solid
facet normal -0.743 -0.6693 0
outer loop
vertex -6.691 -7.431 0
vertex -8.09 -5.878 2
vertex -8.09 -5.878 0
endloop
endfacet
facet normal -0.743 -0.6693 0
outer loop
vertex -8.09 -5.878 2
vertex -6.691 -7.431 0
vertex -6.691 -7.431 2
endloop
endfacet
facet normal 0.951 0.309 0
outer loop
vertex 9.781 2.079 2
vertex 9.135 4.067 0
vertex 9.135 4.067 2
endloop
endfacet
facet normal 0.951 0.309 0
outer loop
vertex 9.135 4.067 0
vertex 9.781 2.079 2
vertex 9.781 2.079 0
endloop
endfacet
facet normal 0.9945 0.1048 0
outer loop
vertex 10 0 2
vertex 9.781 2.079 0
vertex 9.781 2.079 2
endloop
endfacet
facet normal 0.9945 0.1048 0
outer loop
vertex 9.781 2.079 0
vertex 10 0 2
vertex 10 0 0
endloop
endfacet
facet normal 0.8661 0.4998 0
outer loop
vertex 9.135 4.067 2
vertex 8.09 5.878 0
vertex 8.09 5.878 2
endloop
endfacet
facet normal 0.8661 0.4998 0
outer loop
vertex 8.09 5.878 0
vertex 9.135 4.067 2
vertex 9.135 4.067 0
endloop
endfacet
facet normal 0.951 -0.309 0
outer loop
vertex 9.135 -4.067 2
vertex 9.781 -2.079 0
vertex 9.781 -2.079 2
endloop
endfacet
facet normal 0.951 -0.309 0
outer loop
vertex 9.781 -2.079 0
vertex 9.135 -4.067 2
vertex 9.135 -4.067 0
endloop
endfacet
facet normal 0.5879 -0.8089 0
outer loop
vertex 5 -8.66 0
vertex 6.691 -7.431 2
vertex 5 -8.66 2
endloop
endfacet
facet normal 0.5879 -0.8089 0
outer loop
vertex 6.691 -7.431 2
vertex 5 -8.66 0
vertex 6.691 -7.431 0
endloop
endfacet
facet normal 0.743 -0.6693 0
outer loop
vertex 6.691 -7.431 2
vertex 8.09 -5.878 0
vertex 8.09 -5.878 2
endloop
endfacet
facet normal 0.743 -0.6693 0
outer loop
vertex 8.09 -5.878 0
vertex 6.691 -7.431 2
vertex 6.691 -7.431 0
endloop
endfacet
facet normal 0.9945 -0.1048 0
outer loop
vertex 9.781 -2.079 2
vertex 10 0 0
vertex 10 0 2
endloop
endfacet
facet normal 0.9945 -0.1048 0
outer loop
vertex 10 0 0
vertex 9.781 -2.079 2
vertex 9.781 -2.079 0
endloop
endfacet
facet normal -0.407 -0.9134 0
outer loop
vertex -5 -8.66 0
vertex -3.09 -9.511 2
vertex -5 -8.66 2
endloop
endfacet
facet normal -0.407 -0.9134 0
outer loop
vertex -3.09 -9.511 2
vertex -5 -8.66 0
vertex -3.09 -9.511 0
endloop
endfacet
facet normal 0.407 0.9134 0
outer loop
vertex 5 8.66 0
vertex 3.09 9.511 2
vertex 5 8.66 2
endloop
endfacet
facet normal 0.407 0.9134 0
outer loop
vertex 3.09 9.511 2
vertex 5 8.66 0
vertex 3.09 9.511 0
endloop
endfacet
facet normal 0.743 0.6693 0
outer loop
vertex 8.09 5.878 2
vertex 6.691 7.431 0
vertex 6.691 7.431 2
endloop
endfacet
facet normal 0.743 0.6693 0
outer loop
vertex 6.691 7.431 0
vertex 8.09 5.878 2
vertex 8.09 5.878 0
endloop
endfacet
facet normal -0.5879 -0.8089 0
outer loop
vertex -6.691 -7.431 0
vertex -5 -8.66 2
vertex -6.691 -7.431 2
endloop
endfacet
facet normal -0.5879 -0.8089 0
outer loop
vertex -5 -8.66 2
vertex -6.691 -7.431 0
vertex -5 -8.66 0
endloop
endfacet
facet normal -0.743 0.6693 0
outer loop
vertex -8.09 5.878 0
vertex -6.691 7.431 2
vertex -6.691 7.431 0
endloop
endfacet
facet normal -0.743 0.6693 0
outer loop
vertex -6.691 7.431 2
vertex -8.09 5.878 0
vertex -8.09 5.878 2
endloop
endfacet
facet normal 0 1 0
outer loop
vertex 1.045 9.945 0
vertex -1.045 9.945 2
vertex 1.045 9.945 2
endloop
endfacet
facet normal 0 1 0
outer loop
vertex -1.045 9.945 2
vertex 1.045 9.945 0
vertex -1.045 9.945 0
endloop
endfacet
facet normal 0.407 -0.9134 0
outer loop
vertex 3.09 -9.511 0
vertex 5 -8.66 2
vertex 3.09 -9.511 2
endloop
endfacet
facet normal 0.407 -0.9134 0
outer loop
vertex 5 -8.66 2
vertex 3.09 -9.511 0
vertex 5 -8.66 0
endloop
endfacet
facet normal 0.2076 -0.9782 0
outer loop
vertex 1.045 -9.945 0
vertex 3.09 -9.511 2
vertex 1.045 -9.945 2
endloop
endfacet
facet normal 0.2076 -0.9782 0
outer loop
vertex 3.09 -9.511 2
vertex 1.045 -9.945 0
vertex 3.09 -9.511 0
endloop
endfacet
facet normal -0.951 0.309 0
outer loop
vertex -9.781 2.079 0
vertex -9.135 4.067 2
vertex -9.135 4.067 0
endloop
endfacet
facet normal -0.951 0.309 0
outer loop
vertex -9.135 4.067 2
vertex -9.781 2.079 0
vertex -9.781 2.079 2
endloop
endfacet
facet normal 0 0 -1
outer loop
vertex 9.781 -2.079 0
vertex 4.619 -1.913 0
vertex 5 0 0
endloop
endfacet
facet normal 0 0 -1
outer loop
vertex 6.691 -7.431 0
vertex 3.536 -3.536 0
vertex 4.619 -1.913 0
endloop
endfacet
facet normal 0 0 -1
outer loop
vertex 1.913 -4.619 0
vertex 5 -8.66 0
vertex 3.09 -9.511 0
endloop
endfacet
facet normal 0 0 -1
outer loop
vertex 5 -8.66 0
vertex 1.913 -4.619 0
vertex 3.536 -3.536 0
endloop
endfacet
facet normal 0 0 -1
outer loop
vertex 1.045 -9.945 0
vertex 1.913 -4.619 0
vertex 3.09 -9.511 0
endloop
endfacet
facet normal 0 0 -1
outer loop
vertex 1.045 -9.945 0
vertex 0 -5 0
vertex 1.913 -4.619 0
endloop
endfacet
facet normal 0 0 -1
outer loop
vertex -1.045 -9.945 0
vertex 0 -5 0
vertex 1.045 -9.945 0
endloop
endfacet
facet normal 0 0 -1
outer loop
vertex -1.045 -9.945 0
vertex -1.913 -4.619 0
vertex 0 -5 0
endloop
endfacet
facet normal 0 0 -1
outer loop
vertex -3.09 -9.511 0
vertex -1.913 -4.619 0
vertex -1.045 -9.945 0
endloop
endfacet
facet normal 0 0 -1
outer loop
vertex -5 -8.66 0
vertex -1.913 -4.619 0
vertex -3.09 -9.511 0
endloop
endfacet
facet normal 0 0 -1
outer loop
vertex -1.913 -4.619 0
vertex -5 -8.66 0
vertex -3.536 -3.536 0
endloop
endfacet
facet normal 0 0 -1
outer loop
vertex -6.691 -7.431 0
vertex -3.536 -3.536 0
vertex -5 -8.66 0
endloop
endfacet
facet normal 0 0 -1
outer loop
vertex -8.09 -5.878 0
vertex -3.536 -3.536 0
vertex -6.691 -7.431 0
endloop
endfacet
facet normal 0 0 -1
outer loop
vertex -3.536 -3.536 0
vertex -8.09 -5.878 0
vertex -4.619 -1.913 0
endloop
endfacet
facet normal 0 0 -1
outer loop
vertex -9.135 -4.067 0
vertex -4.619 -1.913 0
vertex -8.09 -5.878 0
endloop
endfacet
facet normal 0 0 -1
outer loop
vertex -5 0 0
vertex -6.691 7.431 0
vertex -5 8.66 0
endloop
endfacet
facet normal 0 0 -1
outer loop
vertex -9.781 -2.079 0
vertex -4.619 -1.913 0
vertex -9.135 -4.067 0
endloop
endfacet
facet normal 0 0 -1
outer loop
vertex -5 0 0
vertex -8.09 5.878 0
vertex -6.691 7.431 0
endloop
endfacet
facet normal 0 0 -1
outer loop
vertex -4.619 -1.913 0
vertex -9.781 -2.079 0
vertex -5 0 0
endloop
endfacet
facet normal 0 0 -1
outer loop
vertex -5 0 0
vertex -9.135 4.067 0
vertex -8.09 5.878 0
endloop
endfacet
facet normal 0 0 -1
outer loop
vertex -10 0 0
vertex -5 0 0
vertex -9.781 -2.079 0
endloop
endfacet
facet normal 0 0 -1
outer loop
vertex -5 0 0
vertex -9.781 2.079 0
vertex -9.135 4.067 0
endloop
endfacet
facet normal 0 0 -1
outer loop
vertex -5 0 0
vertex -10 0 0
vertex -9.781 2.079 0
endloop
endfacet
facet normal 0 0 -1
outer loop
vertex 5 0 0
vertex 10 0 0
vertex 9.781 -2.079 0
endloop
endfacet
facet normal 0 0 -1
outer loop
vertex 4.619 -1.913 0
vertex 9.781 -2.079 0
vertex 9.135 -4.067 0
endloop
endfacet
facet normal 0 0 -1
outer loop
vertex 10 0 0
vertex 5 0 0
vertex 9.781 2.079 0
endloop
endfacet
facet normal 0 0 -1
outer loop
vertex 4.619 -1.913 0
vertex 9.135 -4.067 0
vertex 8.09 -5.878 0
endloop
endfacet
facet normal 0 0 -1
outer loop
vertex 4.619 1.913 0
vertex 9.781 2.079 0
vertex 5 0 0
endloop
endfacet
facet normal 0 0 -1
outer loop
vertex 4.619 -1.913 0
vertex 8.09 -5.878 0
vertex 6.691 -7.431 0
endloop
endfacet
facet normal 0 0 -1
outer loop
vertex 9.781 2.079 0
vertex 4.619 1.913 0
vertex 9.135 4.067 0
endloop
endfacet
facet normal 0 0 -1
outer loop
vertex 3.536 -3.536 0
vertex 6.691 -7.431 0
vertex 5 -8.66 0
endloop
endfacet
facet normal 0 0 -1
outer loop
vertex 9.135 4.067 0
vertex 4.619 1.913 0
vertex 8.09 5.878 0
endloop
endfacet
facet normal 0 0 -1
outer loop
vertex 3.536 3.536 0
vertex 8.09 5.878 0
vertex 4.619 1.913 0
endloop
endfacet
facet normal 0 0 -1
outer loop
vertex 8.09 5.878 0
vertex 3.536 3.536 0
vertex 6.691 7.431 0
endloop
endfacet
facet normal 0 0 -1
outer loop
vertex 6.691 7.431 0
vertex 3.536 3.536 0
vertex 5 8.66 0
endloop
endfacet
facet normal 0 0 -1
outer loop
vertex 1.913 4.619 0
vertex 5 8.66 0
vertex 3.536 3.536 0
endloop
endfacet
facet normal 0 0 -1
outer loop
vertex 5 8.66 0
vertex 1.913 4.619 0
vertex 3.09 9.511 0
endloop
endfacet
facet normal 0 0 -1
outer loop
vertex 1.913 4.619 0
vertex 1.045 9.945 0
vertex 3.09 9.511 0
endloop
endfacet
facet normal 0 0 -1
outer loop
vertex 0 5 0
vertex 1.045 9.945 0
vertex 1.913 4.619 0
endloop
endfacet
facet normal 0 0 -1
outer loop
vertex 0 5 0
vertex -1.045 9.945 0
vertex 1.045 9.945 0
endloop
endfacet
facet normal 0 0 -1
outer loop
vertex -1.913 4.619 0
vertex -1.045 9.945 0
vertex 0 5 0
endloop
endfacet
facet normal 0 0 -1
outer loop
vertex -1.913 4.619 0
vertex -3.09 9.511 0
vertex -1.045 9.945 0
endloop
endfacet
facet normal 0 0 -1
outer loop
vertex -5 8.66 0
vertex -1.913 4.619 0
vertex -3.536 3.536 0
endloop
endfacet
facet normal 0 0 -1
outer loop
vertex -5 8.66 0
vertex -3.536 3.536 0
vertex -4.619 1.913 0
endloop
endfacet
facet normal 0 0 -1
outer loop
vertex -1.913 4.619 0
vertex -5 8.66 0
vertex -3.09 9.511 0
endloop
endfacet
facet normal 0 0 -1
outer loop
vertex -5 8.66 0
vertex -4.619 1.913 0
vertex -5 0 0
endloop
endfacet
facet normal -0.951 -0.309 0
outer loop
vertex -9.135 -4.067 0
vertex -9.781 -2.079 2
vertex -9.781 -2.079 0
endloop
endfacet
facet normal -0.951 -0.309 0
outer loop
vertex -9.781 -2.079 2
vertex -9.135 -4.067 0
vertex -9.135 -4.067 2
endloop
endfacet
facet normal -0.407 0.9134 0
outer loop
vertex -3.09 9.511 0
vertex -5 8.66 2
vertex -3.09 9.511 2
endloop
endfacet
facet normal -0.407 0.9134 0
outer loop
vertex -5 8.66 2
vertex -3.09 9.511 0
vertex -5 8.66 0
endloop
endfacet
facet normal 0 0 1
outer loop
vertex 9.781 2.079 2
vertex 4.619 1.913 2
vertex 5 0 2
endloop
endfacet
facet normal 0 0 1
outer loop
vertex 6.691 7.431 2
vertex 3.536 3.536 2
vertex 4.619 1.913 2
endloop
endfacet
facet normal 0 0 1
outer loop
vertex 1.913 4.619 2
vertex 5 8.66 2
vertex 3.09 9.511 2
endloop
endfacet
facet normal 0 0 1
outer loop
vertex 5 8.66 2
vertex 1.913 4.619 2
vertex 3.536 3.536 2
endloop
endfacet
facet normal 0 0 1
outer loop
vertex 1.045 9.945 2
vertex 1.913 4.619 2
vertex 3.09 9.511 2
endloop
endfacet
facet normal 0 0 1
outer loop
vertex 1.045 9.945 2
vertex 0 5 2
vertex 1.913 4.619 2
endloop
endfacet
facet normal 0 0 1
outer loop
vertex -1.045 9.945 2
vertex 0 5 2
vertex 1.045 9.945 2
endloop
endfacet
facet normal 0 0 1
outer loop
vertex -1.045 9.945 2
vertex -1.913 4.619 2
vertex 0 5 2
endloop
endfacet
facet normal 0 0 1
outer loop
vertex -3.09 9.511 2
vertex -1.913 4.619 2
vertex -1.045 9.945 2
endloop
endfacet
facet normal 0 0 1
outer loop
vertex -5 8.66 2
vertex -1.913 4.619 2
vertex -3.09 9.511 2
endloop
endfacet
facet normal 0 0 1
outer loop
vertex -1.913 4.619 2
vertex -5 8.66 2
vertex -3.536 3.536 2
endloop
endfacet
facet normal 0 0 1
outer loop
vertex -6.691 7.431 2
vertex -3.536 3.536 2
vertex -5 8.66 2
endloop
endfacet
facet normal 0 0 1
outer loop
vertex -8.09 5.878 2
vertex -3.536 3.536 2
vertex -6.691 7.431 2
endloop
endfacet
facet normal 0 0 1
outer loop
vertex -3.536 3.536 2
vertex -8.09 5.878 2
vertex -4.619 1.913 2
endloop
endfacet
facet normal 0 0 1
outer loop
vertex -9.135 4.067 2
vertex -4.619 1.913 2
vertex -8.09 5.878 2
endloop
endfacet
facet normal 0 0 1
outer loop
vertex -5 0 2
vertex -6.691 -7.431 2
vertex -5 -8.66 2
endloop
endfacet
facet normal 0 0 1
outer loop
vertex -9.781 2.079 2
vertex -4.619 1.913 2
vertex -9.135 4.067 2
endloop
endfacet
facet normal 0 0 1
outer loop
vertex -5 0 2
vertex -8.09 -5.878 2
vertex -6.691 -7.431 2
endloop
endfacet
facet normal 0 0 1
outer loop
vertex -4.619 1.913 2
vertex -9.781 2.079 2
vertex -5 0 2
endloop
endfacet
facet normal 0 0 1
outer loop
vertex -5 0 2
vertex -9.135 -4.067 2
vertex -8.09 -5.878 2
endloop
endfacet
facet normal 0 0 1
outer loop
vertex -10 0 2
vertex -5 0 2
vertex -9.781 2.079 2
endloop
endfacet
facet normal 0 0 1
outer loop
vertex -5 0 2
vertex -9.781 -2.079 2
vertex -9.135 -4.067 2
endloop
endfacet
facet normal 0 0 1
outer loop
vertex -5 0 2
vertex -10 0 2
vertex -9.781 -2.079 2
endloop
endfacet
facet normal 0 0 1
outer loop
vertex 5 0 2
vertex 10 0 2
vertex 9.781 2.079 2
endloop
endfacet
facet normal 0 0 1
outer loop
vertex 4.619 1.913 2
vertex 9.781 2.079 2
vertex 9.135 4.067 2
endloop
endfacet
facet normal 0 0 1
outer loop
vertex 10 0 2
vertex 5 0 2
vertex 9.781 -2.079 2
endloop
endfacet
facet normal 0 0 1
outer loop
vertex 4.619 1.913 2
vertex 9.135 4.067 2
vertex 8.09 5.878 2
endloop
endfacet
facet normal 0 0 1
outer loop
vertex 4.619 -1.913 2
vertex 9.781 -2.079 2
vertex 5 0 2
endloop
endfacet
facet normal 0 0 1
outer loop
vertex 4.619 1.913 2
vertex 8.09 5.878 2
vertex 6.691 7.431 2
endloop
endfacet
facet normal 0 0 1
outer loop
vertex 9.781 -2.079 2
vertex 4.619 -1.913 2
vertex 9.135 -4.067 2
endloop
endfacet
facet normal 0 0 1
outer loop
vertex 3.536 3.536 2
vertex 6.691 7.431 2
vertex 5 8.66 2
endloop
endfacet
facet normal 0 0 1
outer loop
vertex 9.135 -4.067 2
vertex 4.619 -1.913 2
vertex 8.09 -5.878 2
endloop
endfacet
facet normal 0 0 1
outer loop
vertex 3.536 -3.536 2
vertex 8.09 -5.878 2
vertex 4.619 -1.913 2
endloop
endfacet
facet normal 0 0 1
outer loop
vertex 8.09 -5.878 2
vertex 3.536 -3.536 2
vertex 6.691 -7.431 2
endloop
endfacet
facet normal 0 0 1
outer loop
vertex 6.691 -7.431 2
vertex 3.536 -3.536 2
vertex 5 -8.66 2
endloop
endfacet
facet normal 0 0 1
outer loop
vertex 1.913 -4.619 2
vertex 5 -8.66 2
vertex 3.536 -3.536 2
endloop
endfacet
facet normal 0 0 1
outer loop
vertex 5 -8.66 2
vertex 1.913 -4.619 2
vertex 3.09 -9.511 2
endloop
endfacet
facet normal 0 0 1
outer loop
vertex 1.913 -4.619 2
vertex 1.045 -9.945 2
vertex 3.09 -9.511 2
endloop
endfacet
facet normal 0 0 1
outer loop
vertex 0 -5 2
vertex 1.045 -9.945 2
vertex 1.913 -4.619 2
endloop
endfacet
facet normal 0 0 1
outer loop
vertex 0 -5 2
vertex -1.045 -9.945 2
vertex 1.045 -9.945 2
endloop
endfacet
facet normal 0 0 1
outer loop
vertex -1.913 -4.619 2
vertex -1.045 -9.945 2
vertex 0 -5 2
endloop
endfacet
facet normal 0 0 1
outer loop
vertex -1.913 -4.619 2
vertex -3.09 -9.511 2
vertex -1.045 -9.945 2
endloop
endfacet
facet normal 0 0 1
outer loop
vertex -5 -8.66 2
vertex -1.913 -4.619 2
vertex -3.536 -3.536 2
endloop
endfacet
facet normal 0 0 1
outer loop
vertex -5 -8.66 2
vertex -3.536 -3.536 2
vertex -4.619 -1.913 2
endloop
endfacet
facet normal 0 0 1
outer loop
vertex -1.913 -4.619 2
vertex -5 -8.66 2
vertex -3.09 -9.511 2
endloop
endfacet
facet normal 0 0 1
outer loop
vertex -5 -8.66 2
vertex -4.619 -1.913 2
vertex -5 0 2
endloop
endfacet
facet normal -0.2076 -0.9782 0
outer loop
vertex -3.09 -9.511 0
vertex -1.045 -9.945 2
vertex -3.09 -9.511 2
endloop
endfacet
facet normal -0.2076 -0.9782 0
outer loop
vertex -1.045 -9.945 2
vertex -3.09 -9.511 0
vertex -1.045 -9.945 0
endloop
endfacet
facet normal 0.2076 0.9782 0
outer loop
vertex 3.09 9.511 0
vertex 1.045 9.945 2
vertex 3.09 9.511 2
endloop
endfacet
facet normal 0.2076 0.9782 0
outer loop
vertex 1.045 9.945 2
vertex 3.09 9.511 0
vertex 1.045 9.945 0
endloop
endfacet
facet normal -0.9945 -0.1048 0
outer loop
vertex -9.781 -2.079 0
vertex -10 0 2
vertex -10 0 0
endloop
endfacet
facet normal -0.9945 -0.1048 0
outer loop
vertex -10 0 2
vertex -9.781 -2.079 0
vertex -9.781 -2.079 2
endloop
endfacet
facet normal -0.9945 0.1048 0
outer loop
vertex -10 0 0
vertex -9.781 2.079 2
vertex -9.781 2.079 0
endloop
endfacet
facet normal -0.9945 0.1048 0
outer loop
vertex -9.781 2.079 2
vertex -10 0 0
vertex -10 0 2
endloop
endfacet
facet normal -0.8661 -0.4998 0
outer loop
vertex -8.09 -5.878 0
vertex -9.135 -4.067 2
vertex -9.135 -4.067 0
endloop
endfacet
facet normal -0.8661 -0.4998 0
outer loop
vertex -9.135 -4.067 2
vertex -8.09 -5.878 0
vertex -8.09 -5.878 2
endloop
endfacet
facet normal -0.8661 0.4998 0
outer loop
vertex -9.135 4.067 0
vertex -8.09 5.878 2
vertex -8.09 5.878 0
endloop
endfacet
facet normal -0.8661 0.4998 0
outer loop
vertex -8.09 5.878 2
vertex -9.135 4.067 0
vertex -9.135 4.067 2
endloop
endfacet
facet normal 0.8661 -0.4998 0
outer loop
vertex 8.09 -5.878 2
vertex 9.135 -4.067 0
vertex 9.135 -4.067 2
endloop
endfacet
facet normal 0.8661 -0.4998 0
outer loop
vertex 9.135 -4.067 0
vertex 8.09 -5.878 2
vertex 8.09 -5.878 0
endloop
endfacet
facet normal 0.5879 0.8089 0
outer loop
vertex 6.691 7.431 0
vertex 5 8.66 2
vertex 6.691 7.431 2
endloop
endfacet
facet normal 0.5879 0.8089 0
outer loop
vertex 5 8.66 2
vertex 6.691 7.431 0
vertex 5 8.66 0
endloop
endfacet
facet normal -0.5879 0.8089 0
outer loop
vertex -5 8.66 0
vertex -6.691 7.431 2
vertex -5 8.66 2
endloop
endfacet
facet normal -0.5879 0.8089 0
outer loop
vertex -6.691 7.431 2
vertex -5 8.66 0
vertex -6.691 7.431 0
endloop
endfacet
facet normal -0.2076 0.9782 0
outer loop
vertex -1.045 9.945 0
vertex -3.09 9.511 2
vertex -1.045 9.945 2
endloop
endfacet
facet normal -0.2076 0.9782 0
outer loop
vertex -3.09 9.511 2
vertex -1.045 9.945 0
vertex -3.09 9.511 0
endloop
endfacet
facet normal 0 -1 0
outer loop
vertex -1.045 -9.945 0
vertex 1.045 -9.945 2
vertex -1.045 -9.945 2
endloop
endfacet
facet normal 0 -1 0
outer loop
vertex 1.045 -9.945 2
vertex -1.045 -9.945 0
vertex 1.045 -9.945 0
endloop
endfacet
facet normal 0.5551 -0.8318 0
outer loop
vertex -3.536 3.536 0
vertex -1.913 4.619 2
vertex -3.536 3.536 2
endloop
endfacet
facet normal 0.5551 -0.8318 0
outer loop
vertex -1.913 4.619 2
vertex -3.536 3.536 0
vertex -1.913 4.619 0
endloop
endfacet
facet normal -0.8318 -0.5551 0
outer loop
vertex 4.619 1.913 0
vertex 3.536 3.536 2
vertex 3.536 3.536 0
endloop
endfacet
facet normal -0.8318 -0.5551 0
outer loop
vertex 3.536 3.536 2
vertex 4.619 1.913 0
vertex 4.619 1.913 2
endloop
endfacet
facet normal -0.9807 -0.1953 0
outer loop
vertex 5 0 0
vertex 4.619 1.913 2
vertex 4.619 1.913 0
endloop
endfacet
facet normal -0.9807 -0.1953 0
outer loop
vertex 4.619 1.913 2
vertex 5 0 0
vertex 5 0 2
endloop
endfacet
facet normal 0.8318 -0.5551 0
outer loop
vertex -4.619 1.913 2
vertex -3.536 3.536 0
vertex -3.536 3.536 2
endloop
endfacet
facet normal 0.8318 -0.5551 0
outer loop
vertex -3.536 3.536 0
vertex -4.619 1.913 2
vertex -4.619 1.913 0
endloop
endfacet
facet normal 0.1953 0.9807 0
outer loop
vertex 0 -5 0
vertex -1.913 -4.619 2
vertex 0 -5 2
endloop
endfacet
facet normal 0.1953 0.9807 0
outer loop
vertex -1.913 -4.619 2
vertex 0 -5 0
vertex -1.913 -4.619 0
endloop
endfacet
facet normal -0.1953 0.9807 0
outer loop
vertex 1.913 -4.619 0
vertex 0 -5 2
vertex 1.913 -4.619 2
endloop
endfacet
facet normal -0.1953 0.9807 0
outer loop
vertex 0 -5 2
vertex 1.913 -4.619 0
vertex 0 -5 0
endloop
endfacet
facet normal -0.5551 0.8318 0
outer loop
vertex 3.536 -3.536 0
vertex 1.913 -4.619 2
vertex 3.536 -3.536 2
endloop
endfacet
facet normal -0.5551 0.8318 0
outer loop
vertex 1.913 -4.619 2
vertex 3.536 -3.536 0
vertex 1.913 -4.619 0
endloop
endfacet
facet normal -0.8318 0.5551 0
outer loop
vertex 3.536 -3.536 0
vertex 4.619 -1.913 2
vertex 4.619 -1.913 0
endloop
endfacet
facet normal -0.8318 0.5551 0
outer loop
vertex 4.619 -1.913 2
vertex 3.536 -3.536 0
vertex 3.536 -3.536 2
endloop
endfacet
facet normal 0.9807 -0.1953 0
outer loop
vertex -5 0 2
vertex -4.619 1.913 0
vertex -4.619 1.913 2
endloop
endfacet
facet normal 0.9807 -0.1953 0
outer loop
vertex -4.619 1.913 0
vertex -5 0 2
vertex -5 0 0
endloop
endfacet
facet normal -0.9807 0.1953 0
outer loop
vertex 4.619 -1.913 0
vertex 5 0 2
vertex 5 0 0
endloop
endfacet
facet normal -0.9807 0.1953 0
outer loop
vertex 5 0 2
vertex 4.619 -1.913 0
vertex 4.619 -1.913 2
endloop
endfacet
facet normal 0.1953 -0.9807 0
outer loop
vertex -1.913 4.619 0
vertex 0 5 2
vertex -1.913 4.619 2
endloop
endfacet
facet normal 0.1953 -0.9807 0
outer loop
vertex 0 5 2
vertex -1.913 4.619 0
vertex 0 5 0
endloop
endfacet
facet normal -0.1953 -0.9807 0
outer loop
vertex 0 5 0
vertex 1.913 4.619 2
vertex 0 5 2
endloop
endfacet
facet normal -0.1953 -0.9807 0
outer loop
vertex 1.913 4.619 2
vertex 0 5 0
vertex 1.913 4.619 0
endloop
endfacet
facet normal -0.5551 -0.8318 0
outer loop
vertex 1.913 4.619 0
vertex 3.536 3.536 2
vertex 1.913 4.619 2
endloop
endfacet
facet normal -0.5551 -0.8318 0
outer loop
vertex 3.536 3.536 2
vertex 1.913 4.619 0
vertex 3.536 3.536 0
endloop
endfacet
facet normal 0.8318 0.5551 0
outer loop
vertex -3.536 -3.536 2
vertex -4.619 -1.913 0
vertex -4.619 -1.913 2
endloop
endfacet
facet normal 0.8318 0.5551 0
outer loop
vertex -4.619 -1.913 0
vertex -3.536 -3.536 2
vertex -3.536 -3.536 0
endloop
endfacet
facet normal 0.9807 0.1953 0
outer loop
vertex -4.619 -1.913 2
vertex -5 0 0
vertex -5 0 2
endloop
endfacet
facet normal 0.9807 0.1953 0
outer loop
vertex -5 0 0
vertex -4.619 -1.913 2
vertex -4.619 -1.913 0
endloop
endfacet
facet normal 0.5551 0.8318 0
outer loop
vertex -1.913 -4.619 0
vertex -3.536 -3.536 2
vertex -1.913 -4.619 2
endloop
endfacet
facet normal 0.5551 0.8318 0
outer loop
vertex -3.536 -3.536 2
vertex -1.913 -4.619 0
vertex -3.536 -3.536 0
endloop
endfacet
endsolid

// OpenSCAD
// Flat washer for general spacing
// outer_diameter: overall diameter
// inner_diameter: hole diameter
// thickness: washer height
// chamfer: size of edge bevel; ensure thickness >= 2*chamfer
module washer(outer_diameter=20, inner_diameter=10, thickness=2, chamfer=0) {
    difference() {
        union() {
            // main body
            translate([0, 0, chamfer])
                cylinder(d=outer_diameter - 2 * chamfer, h=thickness - 2 * chamfer);
            if (chamfer > 0) {
                // bottom chamfer
                cylinder(d1=outer_diameter - 2 * chamfer, d2=outer_diameter, h=chamfer);
                // top chamfer
                translate([0, 0, thickness - chamfer])
                    cylinder(d1=outer_diameter, d2=outer_diameter - 2 * chamfer, h=chamfer);
            }
        }
        // inner hole
        cylinder(d=inner_diameter, h=thickness);
    }
}

washer();
